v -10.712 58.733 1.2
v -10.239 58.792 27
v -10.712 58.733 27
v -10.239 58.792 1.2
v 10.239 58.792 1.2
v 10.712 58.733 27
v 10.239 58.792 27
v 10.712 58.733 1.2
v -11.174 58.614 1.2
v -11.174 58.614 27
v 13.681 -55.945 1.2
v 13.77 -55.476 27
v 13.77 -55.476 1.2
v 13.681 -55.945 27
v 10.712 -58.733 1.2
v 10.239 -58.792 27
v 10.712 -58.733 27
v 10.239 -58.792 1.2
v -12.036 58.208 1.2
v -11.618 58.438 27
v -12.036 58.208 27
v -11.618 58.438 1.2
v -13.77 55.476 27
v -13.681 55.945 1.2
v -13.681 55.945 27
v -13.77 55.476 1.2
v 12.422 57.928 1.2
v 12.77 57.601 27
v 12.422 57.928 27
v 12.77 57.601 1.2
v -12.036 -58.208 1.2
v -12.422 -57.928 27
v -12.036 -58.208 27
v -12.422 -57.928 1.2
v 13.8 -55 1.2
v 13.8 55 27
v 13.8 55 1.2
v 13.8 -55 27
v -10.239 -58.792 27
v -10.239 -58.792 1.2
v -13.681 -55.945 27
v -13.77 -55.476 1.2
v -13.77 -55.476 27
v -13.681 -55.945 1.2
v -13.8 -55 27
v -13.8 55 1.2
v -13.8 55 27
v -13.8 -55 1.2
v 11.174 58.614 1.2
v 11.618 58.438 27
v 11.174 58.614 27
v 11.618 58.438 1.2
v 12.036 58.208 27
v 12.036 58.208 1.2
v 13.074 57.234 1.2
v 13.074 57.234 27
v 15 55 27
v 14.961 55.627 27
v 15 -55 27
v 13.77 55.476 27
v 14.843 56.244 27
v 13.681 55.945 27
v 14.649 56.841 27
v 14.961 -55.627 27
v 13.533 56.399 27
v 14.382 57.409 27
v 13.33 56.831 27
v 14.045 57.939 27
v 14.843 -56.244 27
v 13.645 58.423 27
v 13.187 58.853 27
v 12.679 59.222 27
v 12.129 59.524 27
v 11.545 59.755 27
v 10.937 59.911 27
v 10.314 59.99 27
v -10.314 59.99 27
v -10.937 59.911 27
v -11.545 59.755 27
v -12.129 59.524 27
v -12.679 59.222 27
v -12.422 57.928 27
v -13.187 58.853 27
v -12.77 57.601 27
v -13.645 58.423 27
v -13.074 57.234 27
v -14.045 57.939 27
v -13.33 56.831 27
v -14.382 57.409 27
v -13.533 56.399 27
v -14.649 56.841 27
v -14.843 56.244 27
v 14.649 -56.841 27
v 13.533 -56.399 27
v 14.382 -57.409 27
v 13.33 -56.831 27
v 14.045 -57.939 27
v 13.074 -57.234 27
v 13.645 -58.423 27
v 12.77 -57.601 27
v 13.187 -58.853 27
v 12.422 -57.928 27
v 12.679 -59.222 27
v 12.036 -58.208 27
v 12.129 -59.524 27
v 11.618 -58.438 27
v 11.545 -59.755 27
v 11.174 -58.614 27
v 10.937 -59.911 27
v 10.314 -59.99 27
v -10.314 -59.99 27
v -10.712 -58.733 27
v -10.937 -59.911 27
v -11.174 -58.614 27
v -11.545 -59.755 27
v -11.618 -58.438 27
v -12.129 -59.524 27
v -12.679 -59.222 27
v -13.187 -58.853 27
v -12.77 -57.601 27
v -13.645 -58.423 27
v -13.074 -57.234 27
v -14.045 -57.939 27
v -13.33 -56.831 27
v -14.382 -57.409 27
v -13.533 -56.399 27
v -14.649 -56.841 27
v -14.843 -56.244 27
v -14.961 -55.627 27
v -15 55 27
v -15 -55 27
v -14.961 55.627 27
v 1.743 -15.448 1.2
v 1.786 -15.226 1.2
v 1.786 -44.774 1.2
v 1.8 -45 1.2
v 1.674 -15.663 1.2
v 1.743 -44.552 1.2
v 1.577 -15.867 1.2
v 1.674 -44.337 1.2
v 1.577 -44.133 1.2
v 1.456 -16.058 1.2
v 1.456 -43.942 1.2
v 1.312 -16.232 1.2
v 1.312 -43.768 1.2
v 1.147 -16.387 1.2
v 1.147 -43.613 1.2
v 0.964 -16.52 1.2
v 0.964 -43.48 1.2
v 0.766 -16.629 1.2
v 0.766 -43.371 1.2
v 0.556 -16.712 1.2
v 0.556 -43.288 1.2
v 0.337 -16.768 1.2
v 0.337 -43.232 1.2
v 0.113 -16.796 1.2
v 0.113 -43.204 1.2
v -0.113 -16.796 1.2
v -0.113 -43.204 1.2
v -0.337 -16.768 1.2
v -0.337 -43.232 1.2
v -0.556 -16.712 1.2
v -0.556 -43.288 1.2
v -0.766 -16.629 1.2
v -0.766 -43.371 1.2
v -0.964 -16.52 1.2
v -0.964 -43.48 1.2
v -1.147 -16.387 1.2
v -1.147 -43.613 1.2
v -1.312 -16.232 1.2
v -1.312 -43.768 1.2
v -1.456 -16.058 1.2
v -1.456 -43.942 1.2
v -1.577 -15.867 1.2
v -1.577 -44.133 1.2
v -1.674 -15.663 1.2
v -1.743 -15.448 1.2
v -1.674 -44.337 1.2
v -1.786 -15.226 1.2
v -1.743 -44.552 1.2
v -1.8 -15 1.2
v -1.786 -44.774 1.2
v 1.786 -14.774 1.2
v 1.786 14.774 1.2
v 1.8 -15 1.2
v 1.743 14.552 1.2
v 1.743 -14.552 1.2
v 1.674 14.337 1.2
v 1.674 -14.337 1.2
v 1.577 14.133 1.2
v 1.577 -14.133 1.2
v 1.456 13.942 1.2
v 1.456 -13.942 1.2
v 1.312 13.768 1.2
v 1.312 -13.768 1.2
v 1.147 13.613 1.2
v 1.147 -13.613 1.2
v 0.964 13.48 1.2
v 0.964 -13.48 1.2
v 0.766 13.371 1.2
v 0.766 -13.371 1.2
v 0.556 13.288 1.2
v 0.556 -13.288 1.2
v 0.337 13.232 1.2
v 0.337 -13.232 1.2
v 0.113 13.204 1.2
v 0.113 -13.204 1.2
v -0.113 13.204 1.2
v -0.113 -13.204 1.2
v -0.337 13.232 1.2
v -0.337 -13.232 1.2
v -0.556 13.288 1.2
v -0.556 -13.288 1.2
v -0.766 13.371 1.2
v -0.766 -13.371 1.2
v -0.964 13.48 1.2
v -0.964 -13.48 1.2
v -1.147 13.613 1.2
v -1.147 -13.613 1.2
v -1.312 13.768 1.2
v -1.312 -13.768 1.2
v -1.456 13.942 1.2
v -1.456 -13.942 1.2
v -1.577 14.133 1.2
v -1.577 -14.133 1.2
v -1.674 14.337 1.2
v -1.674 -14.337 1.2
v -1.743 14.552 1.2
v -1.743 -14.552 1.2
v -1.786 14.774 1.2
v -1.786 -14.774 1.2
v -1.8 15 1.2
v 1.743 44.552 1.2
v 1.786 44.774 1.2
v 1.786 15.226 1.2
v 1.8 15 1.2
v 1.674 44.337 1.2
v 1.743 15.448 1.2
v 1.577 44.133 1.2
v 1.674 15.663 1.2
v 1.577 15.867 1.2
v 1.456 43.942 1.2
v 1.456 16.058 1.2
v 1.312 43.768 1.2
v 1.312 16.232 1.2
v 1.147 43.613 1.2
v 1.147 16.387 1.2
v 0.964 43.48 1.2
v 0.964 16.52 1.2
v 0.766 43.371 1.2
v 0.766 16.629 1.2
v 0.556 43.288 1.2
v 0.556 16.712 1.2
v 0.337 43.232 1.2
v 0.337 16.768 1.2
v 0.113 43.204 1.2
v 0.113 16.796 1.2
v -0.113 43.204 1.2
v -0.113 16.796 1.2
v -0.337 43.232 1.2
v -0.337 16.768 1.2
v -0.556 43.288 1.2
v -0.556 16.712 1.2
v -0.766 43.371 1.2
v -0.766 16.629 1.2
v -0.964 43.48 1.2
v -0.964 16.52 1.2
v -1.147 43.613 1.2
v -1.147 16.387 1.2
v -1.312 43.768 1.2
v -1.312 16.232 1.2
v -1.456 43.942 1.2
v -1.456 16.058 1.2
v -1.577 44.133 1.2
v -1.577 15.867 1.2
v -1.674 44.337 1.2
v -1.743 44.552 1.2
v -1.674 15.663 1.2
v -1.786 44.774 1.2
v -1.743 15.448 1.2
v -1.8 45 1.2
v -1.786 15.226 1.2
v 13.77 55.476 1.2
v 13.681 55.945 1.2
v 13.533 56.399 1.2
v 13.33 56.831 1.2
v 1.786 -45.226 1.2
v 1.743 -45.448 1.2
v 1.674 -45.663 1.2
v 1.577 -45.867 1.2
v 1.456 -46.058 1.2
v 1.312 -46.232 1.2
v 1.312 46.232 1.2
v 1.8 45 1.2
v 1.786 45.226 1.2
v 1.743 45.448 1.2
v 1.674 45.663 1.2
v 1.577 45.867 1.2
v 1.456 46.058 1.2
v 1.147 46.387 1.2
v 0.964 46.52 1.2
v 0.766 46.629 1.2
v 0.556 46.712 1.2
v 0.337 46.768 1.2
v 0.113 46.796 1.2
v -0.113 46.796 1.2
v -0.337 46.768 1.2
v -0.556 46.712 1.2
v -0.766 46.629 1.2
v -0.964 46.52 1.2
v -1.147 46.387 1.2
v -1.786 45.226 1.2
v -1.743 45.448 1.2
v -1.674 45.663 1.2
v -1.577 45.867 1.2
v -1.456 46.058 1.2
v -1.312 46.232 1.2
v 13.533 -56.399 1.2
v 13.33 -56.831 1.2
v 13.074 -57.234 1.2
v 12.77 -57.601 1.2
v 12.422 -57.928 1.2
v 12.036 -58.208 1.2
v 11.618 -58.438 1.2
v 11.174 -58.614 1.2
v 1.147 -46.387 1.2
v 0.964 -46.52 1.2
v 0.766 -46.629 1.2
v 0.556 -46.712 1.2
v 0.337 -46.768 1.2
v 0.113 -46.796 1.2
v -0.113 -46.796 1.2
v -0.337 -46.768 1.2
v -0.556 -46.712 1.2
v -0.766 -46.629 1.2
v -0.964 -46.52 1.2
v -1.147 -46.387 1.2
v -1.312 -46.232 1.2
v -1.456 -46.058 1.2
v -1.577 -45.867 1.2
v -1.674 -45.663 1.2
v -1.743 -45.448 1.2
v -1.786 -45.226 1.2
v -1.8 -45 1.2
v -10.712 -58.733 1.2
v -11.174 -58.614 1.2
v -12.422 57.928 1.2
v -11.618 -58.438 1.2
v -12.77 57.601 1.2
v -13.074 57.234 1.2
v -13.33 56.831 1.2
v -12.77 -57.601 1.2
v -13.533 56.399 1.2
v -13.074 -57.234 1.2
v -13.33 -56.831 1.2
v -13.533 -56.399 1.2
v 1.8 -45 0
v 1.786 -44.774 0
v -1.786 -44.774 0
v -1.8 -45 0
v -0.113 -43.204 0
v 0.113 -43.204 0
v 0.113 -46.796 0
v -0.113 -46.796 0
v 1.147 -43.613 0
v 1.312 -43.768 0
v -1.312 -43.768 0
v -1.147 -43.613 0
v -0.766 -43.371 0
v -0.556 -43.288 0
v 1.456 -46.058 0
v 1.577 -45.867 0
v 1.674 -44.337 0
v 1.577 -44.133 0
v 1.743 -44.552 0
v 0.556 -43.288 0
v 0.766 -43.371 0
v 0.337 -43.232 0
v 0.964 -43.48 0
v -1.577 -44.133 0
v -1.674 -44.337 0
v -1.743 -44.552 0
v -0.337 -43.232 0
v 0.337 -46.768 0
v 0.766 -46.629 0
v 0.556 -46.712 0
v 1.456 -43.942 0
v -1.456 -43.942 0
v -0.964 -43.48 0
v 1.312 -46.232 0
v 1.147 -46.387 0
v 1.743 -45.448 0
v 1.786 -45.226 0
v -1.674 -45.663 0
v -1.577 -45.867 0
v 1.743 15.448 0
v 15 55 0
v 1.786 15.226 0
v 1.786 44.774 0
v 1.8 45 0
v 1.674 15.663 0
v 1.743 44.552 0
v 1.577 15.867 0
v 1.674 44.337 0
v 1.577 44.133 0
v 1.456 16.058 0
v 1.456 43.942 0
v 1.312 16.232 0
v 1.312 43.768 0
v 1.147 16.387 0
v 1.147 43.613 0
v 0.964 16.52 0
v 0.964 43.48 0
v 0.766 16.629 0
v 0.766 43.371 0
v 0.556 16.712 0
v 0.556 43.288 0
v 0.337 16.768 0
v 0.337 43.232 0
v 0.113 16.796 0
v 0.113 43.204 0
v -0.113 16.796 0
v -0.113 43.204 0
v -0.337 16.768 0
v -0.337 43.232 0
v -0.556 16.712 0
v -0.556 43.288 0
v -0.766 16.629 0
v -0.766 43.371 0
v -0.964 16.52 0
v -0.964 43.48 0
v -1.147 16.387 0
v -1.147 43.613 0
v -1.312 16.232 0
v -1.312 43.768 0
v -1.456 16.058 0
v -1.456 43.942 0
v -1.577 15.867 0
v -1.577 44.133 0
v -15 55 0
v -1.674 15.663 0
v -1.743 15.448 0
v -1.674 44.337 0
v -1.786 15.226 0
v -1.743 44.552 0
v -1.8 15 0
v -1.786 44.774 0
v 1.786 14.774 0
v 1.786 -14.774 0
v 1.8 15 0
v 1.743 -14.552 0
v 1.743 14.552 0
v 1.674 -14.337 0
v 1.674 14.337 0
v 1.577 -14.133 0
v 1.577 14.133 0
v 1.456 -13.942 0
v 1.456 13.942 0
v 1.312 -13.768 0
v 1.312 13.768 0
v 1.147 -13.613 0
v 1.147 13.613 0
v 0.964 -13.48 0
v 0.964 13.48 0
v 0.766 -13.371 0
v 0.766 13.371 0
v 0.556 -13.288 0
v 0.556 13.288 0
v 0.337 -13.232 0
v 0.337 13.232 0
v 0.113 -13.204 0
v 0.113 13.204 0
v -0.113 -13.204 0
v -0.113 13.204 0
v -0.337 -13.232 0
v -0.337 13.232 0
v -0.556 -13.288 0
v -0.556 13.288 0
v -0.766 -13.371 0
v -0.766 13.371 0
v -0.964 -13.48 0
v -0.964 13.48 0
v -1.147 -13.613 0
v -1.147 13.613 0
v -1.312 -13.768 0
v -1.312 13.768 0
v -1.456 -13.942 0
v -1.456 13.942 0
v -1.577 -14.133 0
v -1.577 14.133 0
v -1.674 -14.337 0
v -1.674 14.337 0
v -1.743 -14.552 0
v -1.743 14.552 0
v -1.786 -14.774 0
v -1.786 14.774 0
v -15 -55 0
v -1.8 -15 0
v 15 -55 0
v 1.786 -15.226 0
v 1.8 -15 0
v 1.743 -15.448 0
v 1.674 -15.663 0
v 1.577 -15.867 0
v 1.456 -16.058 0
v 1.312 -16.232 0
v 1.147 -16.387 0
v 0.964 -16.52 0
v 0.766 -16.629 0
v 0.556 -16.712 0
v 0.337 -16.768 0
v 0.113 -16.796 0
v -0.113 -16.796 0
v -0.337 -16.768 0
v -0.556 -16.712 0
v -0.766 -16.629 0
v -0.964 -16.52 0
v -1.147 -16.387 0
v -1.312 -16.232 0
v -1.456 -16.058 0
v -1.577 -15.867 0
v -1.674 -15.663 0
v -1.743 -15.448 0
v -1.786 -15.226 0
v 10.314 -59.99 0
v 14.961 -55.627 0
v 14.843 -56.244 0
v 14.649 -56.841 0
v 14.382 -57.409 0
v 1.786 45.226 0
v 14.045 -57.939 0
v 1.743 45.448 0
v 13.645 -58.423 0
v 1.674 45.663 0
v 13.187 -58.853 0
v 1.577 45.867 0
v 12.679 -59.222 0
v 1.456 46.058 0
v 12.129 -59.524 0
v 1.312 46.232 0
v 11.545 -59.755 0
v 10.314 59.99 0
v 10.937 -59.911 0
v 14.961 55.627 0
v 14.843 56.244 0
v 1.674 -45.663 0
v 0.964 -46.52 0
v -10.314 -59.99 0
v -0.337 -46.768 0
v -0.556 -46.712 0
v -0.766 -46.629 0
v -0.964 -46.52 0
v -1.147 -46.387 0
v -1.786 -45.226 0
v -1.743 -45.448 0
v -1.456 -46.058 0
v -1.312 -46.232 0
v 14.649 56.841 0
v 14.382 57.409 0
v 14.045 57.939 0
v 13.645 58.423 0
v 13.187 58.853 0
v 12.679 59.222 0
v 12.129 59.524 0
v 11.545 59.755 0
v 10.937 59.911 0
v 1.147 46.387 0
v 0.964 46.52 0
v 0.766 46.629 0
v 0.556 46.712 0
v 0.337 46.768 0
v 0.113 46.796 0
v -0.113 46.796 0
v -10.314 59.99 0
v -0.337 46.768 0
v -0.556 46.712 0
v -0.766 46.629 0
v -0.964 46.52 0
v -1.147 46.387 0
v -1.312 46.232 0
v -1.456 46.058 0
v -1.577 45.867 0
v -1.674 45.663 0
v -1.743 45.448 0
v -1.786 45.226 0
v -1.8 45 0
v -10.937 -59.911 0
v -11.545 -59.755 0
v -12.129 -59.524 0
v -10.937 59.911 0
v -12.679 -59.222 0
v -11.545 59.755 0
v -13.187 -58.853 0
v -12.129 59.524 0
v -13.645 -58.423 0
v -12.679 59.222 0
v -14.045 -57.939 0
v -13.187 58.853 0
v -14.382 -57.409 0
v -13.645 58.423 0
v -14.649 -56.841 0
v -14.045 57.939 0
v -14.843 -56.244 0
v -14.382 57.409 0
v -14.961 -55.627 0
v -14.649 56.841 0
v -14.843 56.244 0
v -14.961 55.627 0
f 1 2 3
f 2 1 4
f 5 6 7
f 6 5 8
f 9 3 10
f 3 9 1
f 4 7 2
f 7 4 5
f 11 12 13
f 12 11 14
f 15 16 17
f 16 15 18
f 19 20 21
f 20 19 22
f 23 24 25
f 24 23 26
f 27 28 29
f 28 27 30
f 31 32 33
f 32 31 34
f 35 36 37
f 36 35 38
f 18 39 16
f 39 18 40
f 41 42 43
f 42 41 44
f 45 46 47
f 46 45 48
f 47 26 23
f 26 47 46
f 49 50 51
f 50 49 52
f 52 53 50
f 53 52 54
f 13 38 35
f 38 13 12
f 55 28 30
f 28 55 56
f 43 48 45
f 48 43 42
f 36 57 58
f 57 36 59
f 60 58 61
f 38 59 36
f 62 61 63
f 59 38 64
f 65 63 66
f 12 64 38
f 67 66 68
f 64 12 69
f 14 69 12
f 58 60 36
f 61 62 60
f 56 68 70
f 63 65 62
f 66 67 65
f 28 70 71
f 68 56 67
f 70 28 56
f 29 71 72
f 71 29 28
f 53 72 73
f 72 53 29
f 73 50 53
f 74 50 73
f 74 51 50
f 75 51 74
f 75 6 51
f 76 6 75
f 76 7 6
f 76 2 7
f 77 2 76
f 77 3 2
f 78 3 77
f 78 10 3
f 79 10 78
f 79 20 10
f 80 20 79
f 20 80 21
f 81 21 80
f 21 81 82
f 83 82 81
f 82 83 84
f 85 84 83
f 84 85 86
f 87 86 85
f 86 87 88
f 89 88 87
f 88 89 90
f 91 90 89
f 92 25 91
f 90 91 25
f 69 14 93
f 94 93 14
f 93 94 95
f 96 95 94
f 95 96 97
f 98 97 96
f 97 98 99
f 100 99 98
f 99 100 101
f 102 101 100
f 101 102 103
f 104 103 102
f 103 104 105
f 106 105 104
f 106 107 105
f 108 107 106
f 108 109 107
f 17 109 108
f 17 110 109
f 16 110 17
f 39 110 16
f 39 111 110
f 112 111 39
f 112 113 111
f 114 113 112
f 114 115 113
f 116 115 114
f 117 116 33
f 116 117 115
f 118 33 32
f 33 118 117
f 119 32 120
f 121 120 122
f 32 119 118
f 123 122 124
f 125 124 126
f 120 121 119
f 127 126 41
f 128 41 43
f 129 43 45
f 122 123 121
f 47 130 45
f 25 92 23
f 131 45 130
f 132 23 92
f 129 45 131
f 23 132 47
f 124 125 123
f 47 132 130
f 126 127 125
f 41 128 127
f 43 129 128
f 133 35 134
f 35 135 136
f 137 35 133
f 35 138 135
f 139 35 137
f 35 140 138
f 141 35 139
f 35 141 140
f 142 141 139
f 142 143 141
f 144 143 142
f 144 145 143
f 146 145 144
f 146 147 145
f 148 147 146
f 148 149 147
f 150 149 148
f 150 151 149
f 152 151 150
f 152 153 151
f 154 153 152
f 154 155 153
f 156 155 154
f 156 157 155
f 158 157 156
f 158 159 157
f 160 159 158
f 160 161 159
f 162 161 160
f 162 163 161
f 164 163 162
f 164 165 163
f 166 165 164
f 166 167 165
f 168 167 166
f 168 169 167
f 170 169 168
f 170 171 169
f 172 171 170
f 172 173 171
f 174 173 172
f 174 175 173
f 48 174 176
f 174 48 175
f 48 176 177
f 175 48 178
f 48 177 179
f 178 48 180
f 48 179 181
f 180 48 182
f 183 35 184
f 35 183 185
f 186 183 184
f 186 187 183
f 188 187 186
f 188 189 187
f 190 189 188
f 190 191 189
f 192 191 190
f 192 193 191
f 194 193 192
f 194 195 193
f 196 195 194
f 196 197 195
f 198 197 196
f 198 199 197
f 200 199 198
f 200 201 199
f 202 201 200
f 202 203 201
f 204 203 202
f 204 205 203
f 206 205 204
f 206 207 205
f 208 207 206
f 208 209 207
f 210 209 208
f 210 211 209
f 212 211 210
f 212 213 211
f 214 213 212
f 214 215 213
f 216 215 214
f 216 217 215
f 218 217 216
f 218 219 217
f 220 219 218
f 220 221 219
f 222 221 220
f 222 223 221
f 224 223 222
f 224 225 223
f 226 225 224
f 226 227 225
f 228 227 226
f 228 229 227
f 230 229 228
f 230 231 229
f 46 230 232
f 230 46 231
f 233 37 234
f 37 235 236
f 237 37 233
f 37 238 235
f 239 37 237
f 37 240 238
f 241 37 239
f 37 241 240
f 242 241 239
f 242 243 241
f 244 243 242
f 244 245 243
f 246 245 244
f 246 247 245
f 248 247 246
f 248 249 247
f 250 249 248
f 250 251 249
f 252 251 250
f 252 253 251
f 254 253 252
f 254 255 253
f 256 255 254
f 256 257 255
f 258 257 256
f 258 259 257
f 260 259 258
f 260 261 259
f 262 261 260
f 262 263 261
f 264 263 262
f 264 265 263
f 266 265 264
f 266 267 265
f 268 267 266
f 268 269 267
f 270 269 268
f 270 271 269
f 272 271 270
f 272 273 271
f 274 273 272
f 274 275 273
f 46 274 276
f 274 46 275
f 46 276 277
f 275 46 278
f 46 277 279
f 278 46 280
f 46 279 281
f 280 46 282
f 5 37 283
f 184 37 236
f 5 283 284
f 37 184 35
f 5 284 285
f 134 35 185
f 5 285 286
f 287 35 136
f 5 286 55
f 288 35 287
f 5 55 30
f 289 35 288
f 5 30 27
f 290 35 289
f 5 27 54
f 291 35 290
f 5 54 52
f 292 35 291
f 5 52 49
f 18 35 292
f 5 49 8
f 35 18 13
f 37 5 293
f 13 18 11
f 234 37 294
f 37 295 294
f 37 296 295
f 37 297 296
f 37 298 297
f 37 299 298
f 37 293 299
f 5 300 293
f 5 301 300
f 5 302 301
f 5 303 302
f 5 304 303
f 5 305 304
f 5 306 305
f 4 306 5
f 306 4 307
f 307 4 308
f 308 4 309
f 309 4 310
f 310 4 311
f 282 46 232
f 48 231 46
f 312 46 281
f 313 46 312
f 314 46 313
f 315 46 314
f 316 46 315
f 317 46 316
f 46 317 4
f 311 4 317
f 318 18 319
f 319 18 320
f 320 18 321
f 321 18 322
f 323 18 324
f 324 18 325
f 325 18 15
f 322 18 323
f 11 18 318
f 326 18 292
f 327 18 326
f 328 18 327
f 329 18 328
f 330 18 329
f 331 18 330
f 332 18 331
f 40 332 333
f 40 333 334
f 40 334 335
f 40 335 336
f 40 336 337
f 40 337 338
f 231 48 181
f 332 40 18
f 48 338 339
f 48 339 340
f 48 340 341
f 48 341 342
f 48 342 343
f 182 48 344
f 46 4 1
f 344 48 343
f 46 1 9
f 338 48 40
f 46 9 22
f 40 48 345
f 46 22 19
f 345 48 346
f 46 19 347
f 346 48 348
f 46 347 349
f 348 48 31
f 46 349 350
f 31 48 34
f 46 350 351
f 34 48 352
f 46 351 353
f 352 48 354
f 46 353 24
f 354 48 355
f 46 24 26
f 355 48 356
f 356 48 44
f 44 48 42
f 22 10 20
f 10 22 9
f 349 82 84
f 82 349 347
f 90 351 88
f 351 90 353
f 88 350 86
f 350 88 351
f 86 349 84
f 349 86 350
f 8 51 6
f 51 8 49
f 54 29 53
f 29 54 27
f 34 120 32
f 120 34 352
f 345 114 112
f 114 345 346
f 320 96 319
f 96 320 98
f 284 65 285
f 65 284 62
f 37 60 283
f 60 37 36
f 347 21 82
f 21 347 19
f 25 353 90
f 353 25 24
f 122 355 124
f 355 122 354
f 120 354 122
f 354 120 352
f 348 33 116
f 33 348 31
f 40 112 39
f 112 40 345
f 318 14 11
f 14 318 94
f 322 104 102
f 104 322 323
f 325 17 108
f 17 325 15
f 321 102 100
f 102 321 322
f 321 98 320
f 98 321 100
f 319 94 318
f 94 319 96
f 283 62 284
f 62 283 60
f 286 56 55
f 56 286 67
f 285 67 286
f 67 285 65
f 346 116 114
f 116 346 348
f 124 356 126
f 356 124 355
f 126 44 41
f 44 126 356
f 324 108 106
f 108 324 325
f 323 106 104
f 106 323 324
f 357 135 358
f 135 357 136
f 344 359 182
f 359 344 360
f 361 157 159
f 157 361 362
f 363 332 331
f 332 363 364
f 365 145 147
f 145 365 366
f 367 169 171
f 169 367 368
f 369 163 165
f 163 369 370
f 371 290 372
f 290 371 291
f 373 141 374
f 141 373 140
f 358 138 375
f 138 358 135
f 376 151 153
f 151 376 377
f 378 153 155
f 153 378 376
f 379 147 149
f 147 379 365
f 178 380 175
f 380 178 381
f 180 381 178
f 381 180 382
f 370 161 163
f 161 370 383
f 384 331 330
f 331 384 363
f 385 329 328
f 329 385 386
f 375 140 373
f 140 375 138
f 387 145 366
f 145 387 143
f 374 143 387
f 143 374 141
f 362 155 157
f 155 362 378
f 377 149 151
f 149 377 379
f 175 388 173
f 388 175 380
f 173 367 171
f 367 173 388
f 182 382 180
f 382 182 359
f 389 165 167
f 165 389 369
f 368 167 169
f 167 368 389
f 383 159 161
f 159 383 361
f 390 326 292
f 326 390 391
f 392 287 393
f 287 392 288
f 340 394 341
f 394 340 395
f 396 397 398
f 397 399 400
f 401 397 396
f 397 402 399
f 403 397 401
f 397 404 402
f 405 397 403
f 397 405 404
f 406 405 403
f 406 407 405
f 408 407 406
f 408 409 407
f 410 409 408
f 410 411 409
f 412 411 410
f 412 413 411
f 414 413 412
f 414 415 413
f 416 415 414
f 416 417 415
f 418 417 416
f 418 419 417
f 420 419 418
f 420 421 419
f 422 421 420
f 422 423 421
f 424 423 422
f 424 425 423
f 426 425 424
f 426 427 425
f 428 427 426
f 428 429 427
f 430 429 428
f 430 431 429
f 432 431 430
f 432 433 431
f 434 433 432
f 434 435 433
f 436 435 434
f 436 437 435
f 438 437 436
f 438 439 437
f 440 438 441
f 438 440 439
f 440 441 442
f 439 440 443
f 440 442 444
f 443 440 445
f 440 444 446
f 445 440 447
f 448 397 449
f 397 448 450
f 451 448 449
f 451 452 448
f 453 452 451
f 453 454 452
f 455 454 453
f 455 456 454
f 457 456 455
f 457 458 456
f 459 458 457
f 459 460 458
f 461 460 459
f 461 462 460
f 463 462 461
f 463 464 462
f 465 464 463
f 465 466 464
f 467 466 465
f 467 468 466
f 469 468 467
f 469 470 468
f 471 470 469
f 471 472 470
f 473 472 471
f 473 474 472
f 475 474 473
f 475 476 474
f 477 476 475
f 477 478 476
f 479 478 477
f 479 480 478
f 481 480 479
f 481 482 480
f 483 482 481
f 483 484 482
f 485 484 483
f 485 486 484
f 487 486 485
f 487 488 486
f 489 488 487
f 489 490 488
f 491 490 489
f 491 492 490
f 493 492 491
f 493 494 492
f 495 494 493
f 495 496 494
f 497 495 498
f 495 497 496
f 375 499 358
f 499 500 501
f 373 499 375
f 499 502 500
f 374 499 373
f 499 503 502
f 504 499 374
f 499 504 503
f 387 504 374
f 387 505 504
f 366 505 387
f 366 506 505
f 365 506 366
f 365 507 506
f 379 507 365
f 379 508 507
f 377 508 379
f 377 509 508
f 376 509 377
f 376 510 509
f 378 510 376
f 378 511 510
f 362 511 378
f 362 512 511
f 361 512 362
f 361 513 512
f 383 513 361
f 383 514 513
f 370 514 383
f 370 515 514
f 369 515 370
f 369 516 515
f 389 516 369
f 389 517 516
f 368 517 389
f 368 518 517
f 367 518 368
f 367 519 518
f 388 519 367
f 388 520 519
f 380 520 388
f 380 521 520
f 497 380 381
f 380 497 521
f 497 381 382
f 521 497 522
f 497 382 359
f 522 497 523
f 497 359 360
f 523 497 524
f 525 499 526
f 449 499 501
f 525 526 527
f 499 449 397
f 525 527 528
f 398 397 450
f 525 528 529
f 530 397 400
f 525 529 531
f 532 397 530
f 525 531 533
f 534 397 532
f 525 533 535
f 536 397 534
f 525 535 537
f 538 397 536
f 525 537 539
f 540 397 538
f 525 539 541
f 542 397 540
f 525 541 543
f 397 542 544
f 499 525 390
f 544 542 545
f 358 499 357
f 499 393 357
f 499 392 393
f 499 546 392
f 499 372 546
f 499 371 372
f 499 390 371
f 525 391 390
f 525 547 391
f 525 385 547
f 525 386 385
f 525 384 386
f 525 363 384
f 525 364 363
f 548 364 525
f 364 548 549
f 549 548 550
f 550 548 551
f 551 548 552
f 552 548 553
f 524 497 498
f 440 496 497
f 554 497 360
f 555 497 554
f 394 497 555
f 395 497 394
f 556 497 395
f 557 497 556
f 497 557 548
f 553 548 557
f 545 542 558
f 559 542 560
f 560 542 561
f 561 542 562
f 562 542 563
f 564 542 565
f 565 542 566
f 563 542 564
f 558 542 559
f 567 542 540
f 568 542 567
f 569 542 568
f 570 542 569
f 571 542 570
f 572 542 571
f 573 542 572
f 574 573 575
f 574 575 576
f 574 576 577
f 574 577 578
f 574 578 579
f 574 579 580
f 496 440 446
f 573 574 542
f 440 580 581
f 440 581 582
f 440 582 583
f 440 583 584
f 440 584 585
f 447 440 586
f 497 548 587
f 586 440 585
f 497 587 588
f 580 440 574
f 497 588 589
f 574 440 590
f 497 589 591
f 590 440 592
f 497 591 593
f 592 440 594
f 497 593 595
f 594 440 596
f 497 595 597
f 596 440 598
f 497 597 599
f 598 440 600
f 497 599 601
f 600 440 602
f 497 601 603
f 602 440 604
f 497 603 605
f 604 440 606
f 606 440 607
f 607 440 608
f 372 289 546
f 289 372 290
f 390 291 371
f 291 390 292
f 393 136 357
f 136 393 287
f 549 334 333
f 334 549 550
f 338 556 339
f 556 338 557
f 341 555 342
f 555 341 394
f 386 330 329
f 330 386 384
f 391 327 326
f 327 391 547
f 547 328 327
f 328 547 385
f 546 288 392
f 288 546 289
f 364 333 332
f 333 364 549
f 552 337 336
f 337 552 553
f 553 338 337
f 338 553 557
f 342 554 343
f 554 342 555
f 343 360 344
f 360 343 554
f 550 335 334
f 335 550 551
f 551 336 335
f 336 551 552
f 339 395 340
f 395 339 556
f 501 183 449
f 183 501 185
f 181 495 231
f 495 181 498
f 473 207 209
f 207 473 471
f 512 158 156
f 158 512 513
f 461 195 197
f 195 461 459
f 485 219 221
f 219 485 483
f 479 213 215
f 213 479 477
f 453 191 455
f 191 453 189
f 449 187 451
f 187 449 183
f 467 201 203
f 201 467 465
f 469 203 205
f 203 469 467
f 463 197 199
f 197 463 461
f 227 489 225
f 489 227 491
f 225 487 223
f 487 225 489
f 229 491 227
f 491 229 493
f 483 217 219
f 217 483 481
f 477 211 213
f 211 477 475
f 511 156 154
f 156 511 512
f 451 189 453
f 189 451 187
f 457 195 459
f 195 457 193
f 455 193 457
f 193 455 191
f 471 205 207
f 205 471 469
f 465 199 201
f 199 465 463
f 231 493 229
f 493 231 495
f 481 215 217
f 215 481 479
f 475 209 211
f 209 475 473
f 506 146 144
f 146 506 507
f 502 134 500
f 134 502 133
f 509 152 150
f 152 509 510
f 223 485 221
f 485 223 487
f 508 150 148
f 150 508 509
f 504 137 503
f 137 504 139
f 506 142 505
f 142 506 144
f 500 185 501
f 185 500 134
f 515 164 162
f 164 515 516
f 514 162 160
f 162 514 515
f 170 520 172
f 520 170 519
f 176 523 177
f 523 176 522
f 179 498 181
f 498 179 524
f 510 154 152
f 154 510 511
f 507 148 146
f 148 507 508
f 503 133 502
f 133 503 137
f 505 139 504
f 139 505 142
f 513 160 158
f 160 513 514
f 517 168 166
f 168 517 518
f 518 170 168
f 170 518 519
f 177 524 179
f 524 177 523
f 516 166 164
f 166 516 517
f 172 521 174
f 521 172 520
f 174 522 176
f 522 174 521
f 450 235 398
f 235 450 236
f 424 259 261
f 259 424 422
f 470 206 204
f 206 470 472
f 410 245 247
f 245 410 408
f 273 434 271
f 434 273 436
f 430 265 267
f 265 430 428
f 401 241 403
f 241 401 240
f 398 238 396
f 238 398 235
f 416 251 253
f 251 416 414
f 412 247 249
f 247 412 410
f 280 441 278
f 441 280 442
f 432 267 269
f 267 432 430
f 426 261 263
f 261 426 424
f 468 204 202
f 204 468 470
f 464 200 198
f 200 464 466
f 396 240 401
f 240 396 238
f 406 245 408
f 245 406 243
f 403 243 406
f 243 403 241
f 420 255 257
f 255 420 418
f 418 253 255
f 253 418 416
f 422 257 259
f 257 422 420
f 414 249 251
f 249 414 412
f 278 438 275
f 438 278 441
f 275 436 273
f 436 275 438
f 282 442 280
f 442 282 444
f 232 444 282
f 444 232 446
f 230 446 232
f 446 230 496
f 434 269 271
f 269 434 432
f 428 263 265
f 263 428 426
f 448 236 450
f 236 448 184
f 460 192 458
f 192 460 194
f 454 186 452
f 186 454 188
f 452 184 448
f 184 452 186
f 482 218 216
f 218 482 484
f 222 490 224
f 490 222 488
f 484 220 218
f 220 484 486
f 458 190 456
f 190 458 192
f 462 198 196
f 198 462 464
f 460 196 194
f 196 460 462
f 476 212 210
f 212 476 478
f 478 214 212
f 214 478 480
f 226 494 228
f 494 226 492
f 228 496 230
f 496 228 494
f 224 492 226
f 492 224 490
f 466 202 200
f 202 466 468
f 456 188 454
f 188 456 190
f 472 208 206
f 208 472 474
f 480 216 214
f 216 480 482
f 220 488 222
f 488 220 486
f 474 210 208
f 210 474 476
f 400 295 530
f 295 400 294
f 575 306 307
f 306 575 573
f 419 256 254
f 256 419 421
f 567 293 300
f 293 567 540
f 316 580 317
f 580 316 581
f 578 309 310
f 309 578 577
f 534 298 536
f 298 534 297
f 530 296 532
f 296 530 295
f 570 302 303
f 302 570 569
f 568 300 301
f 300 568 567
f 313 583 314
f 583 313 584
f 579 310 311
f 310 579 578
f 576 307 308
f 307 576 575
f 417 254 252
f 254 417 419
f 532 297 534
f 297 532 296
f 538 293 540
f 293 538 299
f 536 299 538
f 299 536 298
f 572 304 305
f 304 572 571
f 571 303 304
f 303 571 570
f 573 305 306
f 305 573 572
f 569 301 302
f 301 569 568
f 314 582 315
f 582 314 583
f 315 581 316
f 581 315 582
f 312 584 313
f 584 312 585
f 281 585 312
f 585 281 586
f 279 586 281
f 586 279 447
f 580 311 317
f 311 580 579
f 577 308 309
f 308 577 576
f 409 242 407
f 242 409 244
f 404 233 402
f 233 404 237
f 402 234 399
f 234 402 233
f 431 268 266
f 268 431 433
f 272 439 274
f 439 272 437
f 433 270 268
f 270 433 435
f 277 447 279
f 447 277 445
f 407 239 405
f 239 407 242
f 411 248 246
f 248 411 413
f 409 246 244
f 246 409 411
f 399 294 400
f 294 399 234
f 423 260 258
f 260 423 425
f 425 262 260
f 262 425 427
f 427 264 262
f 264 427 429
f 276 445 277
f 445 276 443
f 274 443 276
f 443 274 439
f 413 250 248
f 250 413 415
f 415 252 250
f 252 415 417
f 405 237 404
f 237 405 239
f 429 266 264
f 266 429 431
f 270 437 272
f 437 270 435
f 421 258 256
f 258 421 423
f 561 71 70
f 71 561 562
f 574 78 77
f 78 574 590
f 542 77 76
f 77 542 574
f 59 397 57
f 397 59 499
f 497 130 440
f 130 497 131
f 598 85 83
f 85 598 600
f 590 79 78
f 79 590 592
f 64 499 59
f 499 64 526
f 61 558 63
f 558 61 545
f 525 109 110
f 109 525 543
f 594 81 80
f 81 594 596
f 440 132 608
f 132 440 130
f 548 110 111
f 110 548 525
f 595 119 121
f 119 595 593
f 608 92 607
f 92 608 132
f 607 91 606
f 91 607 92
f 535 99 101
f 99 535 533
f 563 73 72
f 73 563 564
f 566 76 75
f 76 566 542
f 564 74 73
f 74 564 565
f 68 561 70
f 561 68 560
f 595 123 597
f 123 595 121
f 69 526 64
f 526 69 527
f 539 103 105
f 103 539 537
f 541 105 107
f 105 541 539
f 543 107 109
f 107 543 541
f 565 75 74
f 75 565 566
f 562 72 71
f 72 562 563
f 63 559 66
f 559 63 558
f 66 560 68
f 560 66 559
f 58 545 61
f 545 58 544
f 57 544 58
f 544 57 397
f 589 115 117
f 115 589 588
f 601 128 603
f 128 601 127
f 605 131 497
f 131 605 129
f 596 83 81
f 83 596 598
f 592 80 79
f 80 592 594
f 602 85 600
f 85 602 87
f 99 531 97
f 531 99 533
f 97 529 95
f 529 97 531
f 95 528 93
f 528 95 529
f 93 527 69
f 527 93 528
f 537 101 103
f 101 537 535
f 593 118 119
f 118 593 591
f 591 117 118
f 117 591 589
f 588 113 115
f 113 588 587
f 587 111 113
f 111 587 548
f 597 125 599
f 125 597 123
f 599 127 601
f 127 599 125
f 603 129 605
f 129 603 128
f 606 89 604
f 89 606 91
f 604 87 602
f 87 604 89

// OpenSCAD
$fn = 50;


difference() {
	union() {
		hull() {
			translate(v = [-10.0000000000, 55.0000000000, 0]) {
				cylinder(h = 27, r = 5);
			}
			translate(v = [10.0000000000, 55.0000000000, 0]) {
				cylinder(h = 27, r = 5);
			}
			translate(v = [-10.0000000000, -55.0000000000, 0]) {
				cylinder(h = 27, r = 5);
			}
			translate(v = [10.0000000000, -55.0000000000, 0]) {
				cylinder(h = 27, r = 5);
			}
		}
	}
	union() {
		translate(v = [0, 0, 1.2000000000]) {
			hull() {
				translate(v = [-10.0000000000, 55.0000000000, 0]) {
					cylinder(h = 25.8000000000, r = 3.8000000000);
				}
				translate(v = [10.0000000000, 55.0000000000, 0]) {
					cylinder(h = 25.8000000000, r = 3.8000000000);
				}
				translate(v = [-10.0000000000, -55.0000000000, 0]) {
					cylinder(h = 25.8000000000, r = 3.8000000000);
				}
				translate(v = [10.0000000000, -55.0000000000, 0]) {
					cylinder(h = 25.8000000000, r = 3.8000000000);
				}
			}
		}
		#translate(v = [0.0000000000, -45.0000000000, 0]) {
			cylinder(h = 1.2000000000, r = 1.8000000000);
		}
		#translate(v = [0.0000000000, -15.0000000000, 0]) {
			cylinder(h = 1.2000000000, r = 1.8000000000);
		}
		#translate(v = [0.0000000000, 15.0000000000, 0]) {
			cylinder(h = 1.2000000000, r = 1.8000000000);
		}
		#translate(v = [0.0000000000, 45.0000000000, 0]) {
			cylinder(h = 1.2000000000, r = 1.8000000000);
		}
	}
}
